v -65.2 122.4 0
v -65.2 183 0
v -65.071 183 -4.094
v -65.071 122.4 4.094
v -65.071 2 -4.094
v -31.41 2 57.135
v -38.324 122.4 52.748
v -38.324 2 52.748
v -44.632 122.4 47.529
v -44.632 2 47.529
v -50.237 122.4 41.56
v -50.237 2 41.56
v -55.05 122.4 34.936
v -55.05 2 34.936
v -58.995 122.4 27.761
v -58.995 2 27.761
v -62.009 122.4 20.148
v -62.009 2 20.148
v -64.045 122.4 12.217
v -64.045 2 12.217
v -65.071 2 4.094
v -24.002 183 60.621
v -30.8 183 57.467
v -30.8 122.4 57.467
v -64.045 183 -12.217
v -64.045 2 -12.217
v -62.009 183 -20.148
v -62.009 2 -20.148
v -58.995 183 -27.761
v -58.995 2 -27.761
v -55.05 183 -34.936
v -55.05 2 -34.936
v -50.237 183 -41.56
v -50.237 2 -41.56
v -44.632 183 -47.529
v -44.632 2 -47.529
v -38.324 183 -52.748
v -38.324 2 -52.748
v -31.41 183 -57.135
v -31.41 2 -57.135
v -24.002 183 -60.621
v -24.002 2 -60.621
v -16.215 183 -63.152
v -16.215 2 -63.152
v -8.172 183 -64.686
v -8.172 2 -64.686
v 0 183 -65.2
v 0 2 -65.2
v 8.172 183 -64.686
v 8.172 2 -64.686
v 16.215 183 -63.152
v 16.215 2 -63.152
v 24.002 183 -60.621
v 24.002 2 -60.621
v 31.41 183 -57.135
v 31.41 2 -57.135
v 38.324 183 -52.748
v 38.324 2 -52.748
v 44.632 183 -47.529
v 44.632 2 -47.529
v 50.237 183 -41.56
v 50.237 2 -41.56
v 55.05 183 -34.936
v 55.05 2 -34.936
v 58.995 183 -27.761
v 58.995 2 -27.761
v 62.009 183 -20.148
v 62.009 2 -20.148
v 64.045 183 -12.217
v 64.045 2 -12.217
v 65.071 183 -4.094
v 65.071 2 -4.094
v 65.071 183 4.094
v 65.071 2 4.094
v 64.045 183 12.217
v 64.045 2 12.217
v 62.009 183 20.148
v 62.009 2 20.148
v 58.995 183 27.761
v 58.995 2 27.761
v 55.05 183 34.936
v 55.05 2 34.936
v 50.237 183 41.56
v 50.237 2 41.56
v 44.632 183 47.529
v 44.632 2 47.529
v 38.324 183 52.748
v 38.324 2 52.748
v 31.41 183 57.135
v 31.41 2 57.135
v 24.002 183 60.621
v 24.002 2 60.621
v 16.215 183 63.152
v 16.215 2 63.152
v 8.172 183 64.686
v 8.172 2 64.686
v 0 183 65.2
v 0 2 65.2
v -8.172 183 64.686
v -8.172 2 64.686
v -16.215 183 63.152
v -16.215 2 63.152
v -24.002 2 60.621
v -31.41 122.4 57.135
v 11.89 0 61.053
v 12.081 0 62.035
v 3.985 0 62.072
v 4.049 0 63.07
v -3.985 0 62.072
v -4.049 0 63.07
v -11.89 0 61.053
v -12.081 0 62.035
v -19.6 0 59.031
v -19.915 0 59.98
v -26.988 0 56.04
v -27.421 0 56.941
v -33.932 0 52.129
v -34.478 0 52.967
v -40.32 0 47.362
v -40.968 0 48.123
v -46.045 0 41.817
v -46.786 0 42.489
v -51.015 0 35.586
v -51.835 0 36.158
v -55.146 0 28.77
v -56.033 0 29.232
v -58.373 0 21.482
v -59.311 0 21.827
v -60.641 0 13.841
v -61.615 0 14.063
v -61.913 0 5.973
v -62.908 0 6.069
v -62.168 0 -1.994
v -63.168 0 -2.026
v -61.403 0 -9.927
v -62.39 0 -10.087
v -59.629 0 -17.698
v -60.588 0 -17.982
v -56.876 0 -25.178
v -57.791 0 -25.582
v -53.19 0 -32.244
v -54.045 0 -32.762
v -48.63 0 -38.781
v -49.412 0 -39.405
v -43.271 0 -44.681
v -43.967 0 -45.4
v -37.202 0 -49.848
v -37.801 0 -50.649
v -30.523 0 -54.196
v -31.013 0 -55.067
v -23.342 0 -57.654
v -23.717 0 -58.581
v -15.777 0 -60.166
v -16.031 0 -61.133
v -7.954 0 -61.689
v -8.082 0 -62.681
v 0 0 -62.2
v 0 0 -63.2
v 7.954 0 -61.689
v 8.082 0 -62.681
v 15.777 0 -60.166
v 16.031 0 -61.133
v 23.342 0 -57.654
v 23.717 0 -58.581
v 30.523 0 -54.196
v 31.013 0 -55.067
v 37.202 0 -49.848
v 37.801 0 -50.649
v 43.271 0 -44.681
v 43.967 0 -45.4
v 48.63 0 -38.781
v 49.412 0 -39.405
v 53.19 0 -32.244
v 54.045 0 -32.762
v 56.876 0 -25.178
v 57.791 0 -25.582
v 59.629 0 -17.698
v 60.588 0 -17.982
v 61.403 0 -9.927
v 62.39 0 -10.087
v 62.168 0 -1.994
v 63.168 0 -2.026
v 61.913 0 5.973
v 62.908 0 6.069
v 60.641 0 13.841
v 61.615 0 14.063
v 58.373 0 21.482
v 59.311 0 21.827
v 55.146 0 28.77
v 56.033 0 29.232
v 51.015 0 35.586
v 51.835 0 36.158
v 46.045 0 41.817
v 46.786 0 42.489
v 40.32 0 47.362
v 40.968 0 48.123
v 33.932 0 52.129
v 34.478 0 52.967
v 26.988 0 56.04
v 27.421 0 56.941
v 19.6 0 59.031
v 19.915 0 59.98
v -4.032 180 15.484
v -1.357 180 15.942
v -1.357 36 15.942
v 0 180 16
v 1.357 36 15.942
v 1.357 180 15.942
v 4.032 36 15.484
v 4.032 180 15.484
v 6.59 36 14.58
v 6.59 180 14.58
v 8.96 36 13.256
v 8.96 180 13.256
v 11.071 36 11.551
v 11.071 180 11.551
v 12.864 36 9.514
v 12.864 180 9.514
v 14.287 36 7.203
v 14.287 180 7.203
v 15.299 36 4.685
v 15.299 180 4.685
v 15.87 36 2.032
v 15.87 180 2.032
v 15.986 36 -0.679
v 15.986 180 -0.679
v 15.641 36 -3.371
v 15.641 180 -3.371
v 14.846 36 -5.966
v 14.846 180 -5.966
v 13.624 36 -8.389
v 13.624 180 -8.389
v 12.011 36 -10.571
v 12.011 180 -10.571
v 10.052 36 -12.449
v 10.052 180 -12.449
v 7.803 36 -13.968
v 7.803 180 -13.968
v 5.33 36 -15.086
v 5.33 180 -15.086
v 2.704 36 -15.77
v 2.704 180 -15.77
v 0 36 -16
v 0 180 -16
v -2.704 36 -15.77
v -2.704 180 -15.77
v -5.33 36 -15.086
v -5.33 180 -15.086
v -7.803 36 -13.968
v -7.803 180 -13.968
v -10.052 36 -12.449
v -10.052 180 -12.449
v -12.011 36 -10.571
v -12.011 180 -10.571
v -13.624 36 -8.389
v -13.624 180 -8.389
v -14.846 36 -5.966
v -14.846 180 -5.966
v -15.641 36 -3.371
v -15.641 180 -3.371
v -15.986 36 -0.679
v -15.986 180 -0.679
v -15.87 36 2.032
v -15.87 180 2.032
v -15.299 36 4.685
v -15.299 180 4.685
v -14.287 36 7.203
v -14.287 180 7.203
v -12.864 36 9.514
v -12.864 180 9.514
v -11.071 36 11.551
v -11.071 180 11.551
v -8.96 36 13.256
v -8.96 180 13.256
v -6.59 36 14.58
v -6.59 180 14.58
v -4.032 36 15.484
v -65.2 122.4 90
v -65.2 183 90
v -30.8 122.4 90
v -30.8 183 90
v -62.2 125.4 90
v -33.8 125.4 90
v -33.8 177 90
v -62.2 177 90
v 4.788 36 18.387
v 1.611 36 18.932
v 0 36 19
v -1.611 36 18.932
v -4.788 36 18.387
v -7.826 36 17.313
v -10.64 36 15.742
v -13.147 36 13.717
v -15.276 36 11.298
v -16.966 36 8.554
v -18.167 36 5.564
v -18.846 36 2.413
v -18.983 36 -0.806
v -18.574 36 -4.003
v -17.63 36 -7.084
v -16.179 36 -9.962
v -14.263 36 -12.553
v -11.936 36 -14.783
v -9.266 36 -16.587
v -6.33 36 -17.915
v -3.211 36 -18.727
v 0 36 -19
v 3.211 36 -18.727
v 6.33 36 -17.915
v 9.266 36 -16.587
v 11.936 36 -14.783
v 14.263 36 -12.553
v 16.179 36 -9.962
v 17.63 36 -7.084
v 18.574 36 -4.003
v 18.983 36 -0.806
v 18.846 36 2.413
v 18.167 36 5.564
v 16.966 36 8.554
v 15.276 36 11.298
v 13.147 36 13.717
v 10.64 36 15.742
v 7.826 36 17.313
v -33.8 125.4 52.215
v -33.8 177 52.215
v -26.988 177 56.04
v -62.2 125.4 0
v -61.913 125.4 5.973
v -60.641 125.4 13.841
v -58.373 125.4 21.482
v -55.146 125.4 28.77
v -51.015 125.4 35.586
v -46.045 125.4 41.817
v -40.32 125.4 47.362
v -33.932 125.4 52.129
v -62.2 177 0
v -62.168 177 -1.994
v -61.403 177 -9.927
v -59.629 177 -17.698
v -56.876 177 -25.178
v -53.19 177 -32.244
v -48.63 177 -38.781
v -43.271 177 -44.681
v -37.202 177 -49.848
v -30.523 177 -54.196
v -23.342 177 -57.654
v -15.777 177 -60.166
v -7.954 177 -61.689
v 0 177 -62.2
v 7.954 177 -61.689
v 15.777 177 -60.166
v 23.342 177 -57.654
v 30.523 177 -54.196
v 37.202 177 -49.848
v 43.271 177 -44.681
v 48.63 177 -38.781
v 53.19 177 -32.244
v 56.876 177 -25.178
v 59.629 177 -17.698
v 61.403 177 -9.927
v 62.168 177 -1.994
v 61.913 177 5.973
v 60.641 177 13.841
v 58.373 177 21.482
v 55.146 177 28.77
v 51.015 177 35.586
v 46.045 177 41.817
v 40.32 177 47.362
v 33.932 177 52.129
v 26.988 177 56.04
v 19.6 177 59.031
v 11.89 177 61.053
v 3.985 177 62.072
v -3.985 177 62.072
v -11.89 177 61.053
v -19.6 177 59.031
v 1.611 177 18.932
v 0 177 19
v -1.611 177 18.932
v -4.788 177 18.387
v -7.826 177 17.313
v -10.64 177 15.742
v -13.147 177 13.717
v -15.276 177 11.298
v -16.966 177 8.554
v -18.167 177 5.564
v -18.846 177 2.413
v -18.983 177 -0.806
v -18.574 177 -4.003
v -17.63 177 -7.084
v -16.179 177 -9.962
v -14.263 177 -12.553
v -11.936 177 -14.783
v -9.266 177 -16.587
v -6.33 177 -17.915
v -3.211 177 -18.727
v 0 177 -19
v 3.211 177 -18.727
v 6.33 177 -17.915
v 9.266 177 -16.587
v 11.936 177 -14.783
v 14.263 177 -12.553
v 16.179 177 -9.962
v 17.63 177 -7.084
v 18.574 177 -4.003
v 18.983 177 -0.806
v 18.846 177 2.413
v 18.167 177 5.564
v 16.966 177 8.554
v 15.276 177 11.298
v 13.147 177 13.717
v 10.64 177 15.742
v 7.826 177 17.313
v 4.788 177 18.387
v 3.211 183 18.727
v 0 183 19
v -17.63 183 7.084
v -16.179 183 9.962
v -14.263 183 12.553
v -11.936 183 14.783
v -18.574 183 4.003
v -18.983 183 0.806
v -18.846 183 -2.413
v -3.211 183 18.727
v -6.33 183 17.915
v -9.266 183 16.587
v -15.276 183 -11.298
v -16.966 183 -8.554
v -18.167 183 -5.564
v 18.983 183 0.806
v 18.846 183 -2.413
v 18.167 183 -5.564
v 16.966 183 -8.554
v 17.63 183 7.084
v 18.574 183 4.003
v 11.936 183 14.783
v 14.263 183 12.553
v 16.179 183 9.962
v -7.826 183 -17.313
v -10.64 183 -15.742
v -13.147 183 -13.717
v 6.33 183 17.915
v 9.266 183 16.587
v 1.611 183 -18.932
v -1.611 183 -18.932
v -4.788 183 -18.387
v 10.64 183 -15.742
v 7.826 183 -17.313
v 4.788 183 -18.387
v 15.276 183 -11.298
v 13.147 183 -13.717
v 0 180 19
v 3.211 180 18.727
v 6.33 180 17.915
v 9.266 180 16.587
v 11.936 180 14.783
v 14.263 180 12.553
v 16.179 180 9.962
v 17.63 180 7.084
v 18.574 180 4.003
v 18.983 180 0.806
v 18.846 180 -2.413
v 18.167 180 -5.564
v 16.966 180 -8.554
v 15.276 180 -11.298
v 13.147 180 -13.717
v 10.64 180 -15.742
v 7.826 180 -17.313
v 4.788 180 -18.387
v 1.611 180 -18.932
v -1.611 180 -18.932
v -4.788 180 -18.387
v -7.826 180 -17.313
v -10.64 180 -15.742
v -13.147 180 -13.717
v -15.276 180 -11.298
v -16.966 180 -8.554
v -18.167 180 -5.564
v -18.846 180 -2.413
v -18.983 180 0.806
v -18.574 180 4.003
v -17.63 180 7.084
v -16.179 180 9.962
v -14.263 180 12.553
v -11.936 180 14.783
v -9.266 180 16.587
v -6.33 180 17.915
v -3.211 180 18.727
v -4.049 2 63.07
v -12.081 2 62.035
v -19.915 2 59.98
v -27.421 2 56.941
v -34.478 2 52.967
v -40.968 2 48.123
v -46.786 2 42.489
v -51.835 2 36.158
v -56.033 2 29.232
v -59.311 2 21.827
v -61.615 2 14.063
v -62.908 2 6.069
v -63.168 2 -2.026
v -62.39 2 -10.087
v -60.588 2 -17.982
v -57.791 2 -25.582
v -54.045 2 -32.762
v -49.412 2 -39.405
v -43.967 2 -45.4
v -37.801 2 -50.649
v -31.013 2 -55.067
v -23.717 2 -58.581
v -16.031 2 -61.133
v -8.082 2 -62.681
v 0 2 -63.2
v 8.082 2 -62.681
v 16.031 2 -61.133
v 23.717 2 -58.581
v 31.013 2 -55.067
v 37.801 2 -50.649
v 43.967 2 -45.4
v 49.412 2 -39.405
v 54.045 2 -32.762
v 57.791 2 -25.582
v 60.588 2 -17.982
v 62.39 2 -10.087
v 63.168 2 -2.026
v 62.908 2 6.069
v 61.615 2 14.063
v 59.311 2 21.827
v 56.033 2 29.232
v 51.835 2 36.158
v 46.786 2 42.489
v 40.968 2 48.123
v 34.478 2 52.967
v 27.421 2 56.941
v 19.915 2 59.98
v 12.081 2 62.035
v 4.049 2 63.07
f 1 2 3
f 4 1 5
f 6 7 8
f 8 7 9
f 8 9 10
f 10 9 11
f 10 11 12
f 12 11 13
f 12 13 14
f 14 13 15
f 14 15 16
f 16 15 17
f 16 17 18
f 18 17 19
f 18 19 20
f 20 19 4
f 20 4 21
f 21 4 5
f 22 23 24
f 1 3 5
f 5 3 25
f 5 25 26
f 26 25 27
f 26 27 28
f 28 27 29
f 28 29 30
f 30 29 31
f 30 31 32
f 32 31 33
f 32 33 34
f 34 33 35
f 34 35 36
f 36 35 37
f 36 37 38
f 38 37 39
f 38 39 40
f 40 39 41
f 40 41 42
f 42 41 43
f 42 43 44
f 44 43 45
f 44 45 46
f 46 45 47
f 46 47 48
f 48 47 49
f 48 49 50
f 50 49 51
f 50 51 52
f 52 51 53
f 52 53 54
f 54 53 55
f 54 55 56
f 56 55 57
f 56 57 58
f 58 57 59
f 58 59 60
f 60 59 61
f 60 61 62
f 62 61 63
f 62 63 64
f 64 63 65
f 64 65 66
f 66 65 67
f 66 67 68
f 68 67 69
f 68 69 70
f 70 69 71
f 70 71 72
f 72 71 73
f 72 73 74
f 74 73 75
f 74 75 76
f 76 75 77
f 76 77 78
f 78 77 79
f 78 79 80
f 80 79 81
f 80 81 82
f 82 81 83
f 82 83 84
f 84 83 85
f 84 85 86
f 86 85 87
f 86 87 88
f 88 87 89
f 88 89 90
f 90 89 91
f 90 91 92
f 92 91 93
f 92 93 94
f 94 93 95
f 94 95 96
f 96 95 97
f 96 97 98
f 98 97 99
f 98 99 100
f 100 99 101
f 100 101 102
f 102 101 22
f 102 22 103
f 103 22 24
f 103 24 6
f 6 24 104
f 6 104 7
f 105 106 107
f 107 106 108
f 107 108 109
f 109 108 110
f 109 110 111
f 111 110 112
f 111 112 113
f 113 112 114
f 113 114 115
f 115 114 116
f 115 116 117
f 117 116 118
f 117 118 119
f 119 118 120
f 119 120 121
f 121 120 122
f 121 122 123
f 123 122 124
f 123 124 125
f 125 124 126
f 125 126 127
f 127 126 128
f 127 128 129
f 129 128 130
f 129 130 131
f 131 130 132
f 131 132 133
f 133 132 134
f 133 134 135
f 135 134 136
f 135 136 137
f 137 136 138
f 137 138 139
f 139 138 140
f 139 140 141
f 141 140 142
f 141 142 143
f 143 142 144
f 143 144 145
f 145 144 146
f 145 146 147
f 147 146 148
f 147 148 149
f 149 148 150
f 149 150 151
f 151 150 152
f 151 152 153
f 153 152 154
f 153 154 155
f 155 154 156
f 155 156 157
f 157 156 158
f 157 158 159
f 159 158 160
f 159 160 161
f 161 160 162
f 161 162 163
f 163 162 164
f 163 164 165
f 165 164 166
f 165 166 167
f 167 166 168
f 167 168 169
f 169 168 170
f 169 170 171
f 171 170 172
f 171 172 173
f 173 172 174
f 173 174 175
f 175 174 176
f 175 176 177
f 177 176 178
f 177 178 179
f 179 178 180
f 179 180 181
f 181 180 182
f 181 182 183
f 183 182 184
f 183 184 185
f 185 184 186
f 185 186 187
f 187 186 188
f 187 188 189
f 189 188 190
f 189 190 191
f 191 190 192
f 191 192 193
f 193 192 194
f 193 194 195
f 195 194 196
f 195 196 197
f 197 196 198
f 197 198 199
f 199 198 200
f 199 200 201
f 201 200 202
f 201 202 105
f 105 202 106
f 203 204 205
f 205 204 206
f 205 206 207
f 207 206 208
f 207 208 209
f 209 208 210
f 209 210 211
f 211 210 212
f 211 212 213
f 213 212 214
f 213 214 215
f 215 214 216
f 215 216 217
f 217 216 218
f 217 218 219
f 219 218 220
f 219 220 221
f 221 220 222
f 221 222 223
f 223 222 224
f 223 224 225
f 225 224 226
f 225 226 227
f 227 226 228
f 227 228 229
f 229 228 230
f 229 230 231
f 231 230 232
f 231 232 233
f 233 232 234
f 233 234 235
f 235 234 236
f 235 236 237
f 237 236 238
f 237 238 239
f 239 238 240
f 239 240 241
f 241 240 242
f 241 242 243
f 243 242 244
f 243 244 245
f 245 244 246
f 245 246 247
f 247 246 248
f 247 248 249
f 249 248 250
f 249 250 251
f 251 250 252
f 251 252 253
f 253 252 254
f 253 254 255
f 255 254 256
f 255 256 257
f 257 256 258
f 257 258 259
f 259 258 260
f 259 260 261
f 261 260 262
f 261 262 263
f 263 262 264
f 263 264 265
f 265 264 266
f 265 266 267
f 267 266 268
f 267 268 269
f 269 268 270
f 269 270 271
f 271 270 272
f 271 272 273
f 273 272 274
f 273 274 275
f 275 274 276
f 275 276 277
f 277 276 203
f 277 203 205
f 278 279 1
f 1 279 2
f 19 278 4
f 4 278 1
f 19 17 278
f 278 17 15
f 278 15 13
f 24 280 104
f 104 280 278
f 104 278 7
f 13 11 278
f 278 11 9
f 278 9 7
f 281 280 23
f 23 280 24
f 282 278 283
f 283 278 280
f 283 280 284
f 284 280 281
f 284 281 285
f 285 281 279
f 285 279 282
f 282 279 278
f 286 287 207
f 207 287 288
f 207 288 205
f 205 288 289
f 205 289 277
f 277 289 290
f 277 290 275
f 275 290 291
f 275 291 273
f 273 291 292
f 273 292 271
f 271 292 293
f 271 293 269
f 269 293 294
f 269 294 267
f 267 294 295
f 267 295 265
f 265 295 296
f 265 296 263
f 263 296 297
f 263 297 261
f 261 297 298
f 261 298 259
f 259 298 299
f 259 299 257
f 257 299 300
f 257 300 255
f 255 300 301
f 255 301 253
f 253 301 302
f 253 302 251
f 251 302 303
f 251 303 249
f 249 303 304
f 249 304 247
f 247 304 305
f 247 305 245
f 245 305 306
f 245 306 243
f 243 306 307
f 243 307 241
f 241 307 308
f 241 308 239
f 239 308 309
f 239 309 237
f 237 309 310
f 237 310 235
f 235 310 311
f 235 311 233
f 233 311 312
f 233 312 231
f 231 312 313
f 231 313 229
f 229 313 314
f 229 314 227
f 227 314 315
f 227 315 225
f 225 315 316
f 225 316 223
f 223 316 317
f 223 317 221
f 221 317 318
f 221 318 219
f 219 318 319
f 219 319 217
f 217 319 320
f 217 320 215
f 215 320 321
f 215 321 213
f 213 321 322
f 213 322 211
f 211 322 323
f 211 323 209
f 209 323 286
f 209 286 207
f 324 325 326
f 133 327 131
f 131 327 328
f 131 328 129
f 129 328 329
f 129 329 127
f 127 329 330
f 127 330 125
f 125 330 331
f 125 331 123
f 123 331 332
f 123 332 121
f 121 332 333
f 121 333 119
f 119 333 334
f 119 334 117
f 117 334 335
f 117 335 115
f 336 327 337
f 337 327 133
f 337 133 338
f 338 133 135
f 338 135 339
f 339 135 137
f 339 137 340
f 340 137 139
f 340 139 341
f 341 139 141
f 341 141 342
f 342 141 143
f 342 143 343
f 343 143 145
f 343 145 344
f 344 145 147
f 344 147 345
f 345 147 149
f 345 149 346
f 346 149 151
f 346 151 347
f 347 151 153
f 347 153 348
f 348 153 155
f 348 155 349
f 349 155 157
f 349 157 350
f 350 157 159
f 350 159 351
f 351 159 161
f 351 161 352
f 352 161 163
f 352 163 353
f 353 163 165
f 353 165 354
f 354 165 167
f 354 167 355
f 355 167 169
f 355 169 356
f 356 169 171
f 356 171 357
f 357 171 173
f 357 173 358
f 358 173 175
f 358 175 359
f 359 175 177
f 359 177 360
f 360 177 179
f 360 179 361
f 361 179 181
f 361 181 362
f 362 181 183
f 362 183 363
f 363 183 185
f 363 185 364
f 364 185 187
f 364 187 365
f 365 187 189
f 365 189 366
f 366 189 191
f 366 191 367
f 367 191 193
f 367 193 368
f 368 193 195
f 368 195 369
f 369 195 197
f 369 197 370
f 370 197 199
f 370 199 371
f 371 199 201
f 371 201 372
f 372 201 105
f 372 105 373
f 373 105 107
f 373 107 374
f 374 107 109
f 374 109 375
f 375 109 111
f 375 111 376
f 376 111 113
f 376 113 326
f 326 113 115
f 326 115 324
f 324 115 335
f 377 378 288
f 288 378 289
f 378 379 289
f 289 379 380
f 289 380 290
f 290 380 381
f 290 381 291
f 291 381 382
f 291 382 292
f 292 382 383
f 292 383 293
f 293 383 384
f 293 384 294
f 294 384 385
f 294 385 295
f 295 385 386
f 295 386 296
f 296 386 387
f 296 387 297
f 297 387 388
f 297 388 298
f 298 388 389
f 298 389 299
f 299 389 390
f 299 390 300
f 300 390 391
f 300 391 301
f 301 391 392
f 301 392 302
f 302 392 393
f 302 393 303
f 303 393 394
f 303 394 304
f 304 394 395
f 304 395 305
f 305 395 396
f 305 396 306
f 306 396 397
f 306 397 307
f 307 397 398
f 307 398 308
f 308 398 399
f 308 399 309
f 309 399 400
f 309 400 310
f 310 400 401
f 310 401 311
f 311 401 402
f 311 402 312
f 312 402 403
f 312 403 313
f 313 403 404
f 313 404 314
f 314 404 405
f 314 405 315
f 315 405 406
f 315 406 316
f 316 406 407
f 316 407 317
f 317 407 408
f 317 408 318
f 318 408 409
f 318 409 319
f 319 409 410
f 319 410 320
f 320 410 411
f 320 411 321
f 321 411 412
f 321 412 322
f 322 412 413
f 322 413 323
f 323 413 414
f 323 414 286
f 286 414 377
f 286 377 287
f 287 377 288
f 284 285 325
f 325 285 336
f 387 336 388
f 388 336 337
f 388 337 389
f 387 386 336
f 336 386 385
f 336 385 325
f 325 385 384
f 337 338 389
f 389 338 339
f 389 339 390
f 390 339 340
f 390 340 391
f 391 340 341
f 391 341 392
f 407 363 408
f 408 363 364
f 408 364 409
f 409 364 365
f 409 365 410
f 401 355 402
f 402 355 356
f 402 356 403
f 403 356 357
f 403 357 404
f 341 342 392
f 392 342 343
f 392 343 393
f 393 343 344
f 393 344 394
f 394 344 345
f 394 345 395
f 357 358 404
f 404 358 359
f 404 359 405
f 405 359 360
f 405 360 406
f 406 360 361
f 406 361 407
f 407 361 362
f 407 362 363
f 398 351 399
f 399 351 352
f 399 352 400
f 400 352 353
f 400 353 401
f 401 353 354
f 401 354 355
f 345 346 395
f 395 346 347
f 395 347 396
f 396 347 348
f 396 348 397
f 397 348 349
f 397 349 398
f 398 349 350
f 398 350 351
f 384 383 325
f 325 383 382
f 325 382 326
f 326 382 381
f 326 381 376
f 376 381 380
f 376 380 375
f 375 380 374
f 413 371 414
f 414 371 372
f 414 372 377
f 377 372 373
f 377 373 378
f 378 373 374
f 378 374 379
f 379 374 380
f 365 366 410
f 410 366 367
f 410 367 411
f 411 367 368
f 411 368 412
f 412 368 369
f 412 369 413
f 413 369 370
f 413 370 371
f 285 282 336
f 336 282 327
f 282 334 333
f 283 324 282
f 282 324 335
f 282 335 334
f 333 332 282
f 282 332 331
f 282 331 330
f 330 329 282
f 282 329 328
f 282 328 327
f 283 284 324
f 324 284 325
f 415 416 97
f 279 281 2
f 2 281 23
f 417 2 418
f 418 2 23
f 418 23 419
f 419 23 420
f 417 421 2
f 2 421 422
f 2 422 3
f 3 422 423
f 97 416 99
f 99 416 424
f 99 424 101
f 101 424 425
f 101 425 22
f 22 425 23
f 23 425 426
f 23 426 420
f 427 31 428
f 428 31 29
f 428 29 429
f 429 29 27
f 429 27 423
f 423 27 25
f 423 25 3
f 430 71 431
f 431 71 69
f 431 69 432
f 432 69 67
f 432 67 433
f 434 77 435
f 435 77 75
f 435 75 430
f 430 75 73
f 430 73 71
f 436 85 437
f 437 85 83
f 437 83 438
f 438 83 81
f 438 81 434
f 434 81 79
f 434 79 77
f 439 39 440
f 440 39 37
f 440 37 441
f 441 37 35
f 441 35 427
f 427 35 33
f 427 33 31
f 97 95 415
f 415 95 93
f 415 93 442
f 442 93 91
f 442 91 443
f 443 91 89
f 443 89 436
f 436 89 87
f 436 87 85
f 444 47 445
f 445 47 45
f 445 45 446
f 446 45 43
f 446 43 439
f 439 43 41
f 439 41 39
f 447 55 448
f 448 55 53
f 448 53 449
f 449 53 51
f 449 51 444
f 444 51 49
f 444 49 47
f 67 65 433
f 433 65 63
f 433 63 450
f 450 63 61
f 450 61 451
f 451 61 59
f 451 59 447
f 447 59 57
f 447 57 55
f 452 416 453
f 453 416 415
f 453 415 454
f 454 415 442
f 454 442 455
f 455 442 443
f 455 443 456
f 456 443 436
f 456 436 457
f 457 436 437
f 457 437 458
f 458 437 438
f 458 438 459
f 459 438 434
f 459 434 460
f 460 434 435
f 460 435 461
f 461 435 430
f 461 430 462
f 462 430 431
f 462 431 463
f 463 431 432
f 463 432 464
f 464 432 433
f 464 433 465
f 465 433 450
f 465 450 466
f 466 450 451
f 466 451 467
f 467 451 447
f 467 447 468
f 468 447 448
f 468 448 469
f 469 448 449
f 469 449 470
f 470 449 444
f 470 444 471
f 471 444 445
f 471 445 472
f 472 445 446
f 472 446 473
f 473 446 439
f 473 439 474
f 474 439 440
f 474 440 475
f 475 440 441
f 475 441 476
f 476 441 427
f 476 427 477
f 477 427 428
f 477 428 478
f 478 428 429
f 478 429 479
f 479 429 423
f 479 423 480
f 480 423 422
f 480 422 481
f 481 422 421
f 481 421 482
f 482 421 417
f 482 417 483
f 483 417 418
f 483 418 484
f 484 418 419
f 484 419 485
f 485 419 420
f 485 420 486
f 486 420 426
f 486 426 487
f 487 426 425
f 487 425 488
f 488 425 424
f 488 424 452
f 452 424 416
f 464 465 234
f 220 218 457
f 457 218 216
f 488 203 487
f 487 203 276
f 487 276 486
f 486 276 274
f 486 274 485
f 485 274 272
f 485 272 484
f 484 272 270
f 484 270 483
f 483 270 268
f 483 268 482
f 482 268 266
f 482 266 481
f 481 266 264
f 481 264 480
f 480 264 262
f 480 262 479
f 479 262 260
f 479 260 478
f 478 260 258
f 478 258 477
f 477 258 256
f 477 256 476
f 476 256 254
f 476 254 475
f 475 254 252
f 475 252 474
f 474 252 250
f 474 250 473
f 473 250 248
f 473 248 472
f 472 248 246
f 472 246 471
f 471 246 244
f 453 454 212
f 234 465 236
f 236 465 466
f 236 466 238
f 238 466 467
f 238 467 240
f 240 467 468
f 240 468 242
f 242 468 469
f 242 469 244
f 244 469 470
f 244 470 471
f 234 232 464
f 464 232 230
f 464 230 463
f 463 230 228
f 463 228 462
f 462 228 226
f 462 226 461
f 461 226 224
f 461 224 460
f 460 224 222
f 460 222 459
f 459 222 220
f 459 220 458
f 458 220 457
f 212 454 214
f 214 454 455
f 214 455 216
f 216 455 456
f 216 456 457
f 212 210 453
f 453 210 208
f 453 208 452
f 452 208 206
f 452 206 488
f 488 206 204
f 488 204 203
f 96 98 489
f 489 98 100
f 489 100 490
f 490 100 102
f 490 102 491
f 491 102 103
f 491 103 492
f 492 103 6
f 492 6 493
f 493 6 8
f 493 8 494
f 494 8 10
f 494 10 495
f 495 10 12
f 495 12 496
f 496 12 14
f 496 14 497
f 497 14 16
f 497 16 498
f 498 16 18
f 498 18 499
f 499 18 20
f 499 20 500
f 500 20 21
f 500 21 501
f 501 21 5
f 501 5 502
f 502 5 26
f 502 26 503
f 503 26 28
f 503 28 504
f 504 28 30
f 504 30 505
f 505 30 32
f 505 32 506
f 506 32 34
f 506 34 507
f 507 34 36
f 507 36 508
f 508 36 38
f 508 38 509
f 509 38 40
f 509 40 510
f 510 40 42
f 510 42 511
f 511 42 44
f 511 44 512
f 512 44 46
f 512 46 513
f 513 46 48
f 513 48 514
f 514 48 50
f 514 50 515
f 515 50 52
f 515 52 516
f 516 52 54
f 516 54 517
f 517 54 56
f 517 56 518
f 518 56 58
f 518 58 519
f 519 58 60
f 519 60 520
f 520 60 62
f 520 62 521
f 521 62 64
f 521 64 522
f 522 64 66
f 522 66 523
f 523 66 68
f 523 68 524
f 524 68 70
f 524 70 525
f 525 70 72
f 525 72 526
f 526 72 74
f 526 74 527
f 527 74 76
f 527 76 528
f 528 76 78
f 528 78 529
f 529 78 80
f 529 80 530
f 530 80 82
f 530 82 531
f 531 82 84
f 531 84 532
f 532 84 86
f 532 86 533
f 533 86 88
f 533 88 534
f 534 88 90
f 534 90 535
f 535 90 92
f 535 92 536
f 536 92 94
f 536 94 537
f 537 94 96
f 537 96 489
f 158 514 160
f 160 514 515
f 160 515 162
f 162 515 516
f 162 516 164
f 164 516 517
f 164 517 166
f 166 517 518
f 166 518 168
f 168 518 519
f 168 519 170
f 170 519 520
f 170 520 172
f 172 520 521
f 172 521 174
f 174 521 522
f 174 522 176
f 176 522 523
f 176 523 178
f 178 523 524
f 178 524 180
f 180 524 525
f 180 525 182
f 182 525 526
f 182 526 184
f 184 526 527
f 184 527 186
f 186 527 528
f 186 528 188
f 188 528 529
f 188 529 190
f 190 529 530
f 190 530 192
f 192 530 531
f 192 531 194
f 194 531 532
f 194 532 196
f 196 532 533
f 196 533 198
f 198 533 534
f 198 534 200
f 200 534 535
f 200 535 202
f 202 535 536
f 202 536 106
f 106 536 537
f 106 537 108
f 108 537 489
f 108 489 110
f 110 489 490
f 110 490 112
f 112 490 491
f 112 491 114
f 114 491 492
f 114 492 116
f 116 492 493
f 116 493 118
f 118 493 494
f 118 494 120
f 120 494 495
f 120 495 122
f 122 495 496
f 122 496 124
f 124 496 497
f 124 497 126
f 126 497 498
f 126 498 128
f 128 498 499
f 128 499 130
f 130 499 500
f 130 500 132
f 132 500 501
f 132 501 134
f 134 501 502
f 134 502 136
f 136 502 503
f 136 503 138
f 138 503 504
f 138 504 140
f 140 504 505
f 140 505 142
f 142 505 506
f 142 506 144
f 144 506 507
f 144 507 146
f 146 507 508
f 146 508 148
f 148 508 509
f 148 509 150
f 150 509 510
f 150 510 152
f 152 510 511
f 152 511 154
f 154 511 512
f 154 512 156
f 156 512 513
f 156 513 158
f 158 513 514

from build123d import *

# Parameters (mm, degrees)
SKETCH_4_W                = 34.4
SKETCH_4_H                = 57.6
EXTRUDE_3_DEPTH           = 90
SHELL_2_OUTLINE_R         = 62.2
SHELL_2_OUTLINE_R_2       = 19
SHELL_2_DEPTH             = 177
SHELL_START               = 125.4
SHELL_2_2_DEPTH           = 51.6
SHELL_2_3_OUTLINE_R       = 19
SHELL_2_3_DEPTH           = 36
EXTRUDE_4_DEPTH           = 3
CUT_EXTRUDE_START         = -3
SKETCH_9_R                = 16
CUT_EXTRUDE_1_DEPTH       = 3
SKETCH_10_R               = 19
CUT_EXTRUDE_2_DEPTH       = 3
CUT_EXTRUDE_START_2       = -2
CUT_EXTRUDE_3_OUTLINE_R   = 65.2
CUT_EXTRUDE_3_OUTLINE_R_2 = 63.2
CUT_EXTRUDE_3_DEPTH       = 2


# Read off the part's stored shape, not the designer's step: 쉘2, 컷-돌출3
with BuildPart() as part:
    # 스케치3 → 회전1 (revolve)
    with BuildSketch(Plane.XY, mode=Mode.PRIVATE) as revolve_1_sk:
        Polygon((0, 36), (16, 36), (16, 180), (65.2, 180), (65.2, 0), (0, 0), align=None)
    revolve(revolve_1_sk.sketch.rotate(Axis((0, 0, 0), (0, 1, 0)), 90), axis=Axis((0, 0, 0), (0, 1, 0)))

    # 스케치4 → 보스-돌출3 (add)
    with BuildSketch(Plane.XY):
        with Locations((-48, 151.2)):
            Rectangle(SKETCH_4_W, SKETCH_4_H)
    extrude(amount=EXTRUDE_3_DEPTH)

    # 쉘2 outline → 쉘2 (cut)
    with BuildSketch(Plane(origin=(0, 0, 0), x_dir=(1, 0, 0), z_dir=(0, 1, 0))):
        Circle(SHELL_2_OUTLINE_R)
        Circle(SHELL_2_OUTLINE_R_2, mode=Mode.SUBTRACT)
    extrude(amount=SHELL_2_DEPTH, mode=Mode.SUBTRACT)

    # Shell 2 2 outline → Shell 2 2 (cut)
    with BuildSketch(Plane(origin=(0, 0, 0), x_dir=(1, 0, 0), z_dir=(0, 1, 0)).offset(SHELL_START)):
        with BuildLine():
            ThreePointArc((-33.8, -52.214940391), (-54.640644213, -29.719353963), (-62.2, 0))
            Line((-62.2, 0), (-62.2, -90))
            Line((-62.2, -90), (-33.8, -90))
            Line((-33.8, -90), (-33.8, -52.214940391))
        make_face()
    extrude(amount=SHELL_2_2_DEPTH, mode=Mode.SUBTRACT)

    # Shell 2 3 outline → Shell 2 3 (cut)
    with BuildSketch(Plane(origin=(0, 0, 0), x_dir=(1, 0, 0), z_dir=(0, 1, 0))):
        Circle(SHELL_2_3_OUTLINE_R)
    extrude(amount=SHELL_2_3_DEPTH, mode=Mode.SUBTRACT)

    # 스케치8 → 보스-돌출4 (add)
    with BuildSketch(Plane(origin=(0, 180, 0), x_dir=(1, 0, 0), z_dir=(0, 1, 0))):
        with BuildLine():
            Line((-30.8, -90), (-30.8, -57.466511987))
            ThreePointArc((-30.8, -57.466511987), (55.942827959, 33.487908266), (-65.2, 0))
            Line((-65.2, 0), (-65.2, -90))
            Line((-65.2, -90), (-30.8, -90))
        make_face()
    extrude(amount=EXTRUDE_4_DEPTH)

    # 스케치9 → 컷-돌출1 (cut)
    with BuildSketch(Plane.XZ.offset(-180).offset(CUT_EXTRUDE_START)):
        with Locations(Location((0, 0, 0), (0, 0, 270))):
            Circle(SKETCH_9_R)
    extrude(amount=CUT_EXTRUDE_1_DEPTH, mode=Mode.SUBTRACT)

    # 스케치10 → 컷-돌출2 (cut)
    with BuildSketch(Plane(origin=(0, 183, 0), x_dir=(1, 0, 0), z_dir=(0, 1, 0)).offset(CUT_EXTRUDE_START)):
        with Locations(Location((0, 0, 0), (0, 0, 270))):
            Circle(SKETCH_10_R)
    extrude(amount=CUT_EXTRUDE_2_DEPTH, mode=Mode.SUBTRACT)

    # 컷-돌출3 outline → 컷-돌출3 (cut)
    with BuildSketch(Plane.XZ.offset(CUT_EXTRUDE_START_2)):
        Circle(CUT_EXTRUDE_3_OUTLINE_R)
        Circle(CUT_EXTRUDE_3_OUTLINE_R_2, mode=Mode.SUBTRACT)
    extrude(amount=CUT_EXTRUDE_3_DEPTH, mode=Mode.SUBTRACT)


solid = part.part
